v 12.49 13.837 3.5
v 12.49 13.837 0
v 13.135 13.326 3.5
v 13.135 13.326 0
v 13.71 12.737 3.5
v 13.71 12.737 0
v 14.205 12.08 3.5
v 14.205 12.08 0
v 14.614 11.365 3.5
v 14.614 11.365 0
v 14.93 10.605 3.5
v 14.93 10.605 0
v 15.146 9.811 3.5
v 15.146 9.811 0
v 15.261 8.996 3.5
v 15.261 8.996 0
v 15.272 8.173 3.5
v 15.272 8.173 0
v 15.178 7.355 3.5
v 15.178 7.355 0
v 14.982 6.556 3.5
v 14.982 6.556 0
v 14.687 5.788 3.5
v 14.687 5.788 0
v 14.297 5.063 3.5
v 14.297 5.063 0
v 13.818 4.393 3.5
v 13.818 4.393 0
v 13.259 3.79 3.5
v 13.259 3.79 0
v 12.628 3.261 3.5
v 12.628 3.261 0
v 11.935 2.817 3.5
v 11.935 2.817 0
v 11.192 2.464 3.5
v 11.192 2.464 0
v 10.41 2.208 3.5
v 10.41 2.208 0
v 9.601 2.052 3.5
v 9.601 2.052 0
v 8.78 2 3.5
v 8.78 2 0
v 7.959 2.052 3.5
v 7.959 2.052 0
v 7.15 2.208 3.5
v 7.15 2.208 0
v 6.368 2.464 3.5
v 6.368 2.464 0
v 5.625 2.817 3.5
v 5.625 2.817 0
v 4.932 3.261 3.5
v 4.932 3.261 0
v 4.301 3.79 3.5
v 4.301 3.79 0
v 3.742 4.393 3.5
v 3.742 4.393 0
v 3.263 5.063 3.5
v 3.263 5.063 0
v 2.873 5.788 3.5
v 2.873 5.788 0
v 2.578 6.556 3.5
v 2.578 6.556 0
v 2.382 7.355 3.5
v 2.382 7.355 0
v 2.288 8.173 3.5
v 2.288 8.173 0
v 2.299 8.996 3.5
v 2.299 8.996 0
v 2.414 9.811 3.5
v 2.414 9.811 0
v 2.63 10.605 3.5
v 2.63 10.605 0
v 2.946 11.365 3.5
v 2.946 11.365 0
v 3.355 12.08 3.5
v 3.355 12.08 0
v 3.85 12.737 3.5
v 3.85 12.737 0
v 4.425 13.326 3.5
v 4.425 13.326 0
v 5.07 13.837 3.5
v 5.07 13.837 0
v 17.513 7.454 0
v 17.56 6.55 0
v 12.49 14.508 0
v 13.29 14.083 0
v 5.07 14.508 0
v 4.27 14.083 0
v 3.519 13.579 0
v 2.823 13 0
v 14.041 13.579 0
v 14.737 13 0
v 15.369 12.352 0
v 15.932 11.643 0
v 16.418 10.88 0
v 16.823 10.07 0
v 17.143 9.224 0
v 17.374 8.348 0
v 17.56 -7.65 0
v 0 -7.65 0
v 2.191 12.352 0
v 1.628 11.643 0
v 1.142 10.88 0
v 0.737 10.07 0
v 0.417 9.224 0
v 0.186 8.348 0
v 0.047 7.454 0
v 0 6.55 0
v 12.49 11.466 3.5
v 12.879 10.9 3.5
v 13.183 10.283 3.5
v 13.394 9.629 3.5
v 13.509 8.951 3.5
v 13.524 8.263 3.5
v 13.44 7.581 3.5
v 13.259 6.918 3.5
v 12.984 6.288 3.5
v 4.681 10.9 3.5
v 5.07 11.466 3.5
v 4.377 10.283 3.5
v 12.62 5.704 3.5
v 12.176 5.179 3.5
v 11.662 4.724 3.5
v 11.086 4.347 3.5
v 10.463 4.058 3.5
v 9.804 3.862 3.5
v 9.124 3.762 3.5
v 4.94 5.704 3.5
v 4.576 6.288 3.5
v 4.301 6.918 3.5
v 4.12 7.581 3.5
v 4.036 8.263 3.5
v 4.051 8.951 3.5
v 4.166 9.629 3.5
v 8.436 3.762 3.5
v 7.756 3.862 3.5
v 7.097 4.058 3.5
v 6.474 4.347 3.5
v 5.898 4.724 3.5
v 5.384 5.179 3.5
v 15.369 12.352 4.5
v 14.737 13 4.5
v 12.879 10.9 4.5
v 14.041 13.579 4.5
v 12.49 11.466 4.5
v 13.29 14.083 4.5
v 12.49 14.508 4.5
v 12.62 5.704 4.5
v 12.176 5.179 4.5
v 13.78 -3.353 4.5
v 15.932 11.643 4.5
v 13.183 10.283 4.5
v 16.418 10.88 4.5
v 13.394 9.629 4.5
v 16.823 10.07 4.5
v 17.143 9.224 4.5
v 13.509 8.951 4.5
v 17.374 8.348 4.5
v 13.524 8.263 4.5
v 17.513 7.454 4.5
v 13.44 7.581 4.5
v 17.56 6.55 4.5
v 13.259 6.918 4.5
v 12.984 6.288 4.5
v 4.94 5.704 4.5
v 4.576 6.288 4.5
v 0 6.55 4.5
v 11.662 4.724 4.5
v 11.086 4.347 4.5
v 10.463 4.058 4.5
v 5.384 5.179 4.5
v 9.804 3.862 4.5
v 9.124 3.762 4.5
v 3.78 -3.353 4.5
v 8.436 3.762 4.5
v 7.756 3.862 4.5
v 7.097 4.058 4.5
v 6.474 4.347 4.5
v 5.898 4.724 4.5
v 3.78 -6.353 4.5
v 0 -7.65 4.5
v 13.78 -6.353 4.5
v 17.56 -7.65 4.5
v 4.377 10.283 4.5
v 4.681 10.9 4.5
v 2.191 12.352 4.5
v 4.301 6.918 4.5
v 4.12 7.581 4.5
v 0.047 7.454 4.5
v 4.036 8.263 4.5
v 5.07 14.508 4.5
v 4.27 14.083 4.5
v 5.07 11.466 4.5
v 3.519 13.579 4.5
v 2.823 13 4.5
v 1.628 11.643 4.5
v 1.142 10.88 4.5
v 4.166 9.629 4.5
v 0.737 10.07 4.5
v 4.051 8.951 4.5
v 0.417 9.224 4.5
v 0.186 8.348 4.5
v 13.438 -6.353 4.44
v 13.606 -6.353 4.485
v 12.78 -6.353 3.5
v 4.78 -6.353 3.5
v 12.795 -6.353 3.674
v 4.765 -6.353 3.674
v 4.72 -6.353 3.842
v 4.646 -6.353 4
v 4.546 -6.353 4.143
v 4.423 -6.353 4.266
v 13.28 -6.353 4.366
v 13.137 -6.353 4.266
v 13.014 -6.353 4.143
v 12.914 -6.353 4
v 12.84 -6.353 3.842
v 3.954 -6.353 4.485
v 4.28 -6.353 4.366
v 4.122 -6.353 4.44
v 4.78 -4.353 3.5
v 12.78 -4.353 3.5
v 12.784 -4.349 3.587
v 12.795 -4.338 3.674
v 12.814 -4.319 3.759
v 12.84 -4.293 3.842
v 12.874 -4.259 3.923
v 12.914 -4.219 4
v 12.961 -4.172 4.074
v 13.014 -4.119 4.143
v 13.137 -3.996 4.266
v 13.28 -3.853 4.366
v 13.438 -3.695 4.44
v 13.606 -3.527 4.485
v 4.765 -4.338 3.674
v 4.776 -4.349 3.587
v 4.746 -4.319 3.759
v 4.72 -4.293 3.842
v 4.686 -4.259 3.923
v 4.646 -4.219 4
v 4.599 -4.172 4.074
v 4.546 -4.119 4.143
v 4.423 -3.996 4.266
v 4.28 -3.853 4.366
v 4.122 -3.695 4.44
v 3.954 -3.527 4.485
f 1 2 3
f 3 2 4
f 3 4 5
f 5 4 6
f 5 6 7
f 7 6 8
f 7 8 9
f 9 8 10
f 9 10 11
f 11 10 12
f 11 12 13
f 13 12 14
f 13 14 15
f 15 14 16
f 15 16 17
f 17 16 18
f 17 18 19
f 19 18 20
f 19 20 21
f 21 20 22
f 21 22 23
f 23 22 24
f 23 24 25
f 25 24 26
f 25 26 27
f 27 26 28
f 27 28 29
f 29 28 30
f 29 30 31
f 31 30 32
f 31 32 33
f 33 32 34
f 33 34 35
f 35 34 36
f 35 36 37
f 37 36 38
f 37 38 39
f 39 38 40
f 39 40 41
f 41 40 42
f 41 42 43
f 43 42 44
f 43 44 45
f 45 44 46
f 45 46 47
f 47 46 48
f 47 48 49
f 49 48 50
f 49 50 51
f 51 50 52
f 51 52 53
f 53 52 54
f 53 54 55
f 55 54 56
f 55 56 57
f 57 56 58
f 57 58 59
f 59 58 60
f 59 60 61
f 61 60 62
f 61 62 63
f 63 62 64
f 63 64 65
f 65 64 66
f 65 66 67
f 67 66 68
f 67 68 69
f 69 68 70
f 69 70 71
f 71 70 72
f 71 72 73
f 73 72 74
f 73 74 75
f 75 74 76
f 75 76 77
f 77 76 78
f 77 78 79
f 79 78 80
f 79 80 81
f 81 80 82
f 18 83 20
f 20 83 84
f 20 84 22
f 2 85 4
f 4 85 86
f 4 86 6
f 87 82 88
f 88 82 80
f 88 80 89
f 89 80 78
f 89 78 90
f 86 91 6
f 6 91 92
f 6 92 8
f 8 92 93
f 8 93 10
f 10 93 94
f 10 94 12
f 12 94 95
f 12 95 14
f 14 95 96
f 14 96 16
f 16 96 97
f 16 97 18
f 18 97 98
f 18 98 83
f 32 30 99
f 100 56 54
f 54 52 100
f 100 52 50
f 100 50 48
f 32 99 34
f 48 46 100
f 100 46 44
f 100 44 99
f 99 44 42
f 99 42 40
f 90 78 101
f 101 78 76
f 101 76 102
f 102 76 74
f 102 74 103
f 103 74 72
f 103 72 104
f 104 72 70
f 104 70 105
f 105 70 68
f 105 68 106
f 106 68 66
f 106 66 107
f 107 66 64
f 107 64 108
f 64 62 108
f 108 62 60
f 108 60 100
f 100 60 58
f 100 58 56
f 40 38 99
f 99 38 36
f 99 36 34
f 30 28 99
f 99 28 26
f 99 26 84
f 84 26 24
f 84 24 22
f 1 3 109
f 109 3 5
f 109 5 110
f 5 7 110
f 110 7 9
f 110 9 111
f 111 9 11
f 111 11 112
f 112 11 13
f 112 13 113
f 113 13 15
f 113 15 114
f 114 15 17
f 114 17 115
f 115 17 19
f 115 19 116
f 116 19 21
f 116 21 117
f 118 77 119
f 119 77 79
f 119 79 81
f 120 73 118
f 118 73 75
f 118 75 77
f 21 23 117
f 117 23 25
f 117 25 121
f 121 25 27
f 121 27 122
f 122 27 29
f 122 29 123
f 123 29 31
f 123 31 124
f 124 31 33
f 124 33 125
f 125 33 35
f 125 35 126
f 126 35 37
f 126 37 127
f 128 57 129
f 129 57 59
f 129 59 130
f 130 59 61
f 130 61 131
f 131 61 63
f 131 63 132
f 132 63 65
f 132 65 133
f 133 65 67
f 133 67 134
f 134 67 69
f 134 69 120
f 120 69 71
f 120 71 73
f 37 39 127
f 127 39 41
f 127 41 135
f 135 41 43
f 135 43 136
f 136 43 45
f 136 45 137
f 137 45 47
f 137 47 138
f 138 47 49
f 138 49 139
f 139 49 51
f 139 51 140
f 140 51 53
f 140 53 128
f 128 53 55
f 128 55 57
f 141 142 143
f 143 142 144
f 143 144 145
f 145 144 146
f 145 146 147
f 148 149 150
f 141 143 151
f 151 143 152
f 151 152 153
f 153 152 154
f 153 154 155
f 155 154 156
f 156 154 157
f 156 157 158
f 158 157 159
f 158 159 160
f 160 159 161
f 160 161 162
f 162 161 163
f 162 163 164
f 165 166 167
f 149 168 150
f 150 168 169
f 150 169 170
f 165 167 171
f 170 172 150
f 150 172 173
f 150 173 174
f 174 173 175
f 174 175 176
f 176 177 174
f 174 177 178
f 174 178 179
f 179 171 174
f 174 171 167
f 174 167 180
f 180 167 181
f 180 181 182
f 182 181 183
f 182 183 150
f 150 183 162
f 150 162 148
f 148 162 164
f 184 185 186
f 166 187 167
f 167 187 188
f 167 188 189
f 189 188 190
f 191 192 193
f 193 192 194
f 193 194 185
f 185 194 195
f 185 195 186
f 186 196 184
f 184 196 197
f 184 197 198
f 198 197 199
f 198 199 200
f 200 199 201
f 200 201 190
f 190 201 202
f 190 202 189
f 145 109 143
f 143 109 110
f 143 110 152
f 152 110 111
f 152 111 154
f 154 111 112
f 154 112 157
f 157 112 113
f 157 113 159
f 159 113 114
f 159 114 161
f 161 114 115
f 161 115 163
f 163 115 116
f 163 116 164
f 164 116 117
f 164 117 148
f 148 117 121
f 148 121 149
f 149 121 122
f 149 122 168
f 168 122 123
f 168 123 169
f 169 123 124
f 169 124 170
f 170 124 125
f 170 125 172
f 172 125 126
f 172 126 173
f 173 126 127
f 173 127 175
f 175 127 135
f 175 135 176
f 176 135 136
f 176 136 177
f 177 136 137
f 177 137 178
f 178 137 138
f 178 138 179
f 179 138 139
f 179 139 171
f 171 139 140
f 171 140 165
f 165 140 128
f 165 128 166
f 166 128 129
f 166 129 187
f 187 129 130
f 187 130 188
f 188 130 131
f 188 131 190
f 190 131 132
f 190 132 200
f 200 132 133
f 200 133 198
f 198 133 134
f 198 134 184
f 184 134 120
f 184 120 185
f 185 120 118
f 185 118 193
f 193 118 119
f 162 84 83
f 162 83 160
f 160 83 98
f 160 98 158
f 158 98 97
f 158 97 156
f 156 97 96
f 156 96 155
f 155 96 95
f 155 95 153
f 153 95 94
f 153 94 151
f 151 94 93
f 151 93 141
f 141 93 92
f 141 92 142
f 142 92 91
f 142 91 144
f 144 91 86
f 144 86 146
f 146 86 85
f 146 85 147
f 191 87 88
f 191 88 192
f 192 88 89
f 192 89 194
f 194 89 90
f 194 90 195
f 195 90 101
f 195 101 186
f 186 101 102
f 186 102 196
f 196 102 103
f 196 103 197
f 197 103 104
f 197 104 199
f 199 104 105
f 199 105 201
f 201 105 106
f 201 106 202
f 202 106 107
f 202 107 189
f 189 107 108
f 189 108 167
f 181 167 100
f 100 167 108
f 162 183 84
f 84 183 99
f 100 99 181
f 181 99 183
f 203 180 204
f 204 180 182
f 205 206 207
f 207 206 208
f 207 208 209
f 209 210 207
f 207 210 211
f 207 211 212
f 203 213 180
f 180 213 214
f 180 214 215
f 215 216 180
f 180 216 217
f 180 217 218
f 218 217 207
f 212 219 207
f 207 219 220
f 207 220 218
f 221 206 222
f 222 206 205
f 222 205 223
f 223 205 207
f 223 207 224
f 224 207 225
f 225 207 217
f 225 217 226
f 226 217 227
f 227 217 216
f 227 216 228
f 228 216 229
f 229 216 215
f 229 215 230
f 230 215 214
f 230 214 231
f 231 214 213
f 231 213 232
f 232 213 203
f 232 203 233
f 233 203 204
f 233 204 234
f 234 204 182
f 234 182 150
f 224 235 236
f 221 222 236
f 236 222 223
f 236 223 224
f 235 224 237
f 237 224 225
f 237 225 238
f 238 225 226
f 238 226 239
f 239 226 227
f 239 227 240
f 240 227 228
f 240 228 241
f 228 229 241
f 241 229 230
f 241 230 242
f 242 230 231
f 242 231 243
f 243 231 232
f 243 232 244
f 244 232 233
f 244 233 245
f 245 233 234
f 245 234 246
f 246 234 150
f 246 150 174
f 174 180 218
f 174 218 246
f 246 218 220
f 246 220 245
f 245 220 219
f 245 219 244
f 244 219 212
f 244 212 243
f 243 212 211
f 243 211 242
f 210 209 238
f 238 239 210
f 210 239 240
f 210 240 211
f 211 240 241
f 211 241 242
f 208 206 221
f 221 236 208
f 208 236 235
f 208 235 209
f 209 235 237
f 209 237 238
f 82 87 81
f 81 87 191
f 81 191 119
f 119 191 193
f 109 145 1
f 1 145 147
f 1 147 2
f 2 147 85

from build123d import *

# Parameters (mm, degrees)
BOSS_EXTRUDE1_DEPTH = 3.5
BOSS_EXTRUDE2_DEPTH = 1
SKETCH4_R           = 4.75
CUT_EXTRUDE1_DEPTH  = 24.115651093
SKETCH5_W           = 17.56
SKETCH5_H           = 4.5
BOSS_EXTRUDE3_DEPTH = 0.15
SKETCH6_W           = 17.56
SKETCH6_H           = 4.5
BOSS_EXTRUDE4_DEPTH = 7.5
SKETCH9_W           = 8
SKETCH9_H           = 2
CUT_EXTRUDE2_DEPTH  = 1
FILLET1_R           = 1
CUT_EXTRUDE3_REACH  = 30.715
SKETCH10_W          = 6.92
SKETCH10_H          = 1
SKETCH11_W          = 4.5
SKETCH11_H          = 3.588872583
CUT_EXTRUDE4_DEPTH  = 0.25


with BuildPart() as part:
    # Sketch1 → Boss-Extrude1 (new body)
    with BuildSketch(Plane.XY):
        with BuildLine():
            ThreePointArc((14.980604809, 6.55), (8.78, 2), (2.579395191, 6.55))
            Line((2.579395191, 6.55), (0, 6.55))
            Line((0, 6.55), (0, 0))
            Line((0, 0), (17.56, 0))
            Line((17.56, 0), (17.56, 6.55))
            Line((17.56, 6.55), (14.980604809, 6.55))
        make_face()
        with BuildLine():
            ThreePointArc((2.579395191, 6.55), (2.679421093, 10.743420825), (5.32, 14.002581212))
            Line((5.32, 14.002581212), (5.32, 14.619498126))
            ThreePointArc((5.32, 14.619498126), (1.449679407, 11.382680416), (0, 6.55))
            Line((0, 6.55), (2.579395191, 6.55))
        make_face()
        with BuildLine():
            ThreePointArc((12.24, 14.002581212), (14.880578907, 10.743420825), (14.980604809, 6.55))
            Line((14.980604809, 6.55), (17.56, 6.55))
            ThreePointArc((17.56, 6.55), (16.110320593, 11.382680416), (12.24, 14.619498126))
            Line((12.24, 14.619498126), (12.24, 14.002581212))
        make_face()
    extrude(amount=BOSS_EXTRUDE1_DEPTH)

    # Sketch3 → Boss-Extrude2 (add)
    with BuildSketch(Plane.XY.offset(3.5)):
        with BuildLine():
            Line((12.24, 14.619498126), (12.24, 14.002581212))
            ThreePointArc((12.24, 14.002581212), (8.78, 2), (5.32, 14.002581212))
            Line((5.32, 14.002581212), (5.32, 14.619498126))
            ThreePointArc((5.32, 14.619498126), (1.449679407, 11.382680416), (0, 6.55))
            Line((0, 6.55), (0, 0))
            Line((0, 0), (17.56, 0))
            Line((17.56, 0), (17.56, 6.55))
            ThreePointArc((17.56, 6.55), (16.110320593, 11.382680416), (12.24, 14.619498126))
        make_face()
        with BuildLine():
            Line((5.32, 14.619498126), (12.24, 14.619498126))
            Line((12.24, 14.619498126), (12.24, 14.002581212))
            ThreePointArc((12.24, 14.002581212), (8.78, 2), (5.32, 14.002581212))
            Line((5.32, 14.002581212), (5.32, 14.619498126))
        make_face()
    extrude(amount=BOSS_EXTRUDE2_DEPTH)

    # Sketch4 → Cut-Extrude1 (cut, through all)
    with BuildSketch(Plane(origin=(0, 0, 3.5), x_dir=(-1, 0, 0), z_dir=(0, 0, -1))):
        with Locations((-8.78, 8.5)):
            Circle(SKETCH4_R)
    extrude(amount=-CUT_EXTRUDE1_DEPTH, mode=Mode.SUBTRACT)

    # Sketch5 → Boss-Extrude3 (add)
    with BuildSketch(Plane.XZ):
        with Locations((8.78, 2.25)):
            Rectangle(SKETCH5_W, SKETCH5_H)
    extrude(amount=BOSS_EXTRUDE3_DEPTH)

    # Sketch6 → Boss-Extrude4 (add)
    with BuildSketch(Plane.XZ.offset(0.15)):
        with Locations((8.78, 2.25)):
            Rectangle(SKETCH6_W, SKETCH6_H)
    extrude(amount=BOSS_EXTRUDE4_DEPTH)

    # Sketch9 → Cut-Extrude2 (cut)
    with BuildSketch(Plane.XY.offset(4.5)):
        with Locations((8.78, -5.353166831)):
            Rectangle(SKETCH9_W, SKETCH9_H)
    extrude(amount=-CUT_EXTRUDE2_DEPTH, mode=Mode.SUBTRACT)

    # Fillet1
    fillet1_edges = [part.edges().sort_by_distance(p)[0] for p in [
        (4.78, -5.353166831, 4.5),
        (12.78, -5.353166831, 4.5),
        (8.78, -4.353166831, 4.5),
    ]]
    fillet(fillet1_edges, radius=FILLET1_R - 0.0001)  # a hair under: the kernel refuses the full size

    # Sketch10 → Cut-Extrude3 (cut, up to next)
    with BuildSketch(Plane(origin=(0, 14.619498126, 0), x_dir=(1, 0, 0), z_dir=(0, 1, 0)), mode=Mode.PRIVATE) as cut_extrude3_sk1:
        with Locations((8.78, -4)):
            Rectangle(SKETCH10_W, SKETCH10_H)
    cut_extrude3_tool1 = extrude(cut_extrude3_sk1.sketch, amount=-CUT_EXTRUDE3_REACH, mode=Mode.PRIVATE) & part.part
    add(cut_extrude3_tool1.solids().sort_by_distance((8.78, 14.619498, 4))[0], mode=Mode.SUBTRACT)

    # Sketch11 → Cut-Extrude4 (cut)
    with BuildSketch(Plane(origin=(5.32, 0, 0), x_dir=(0, 0, -1), z_dir=(1, 0, 0))):
        with Locations((-2.25, 12.825061835)):
            Rectangle(SKETCH11_W, SKETCH11_H)
    cut_extrude4 = extrude(amount=-CUT_EXTRUDE4_DEPTH, mode=Mode.SUBTRACT)

    # Mirror1: Cut-Extrude4 across plane
    add(cut_extrude4.mirror(Plane.ZY.offset(-8.78)), mode=Mode.SUBTRACT)


solid = part.part
